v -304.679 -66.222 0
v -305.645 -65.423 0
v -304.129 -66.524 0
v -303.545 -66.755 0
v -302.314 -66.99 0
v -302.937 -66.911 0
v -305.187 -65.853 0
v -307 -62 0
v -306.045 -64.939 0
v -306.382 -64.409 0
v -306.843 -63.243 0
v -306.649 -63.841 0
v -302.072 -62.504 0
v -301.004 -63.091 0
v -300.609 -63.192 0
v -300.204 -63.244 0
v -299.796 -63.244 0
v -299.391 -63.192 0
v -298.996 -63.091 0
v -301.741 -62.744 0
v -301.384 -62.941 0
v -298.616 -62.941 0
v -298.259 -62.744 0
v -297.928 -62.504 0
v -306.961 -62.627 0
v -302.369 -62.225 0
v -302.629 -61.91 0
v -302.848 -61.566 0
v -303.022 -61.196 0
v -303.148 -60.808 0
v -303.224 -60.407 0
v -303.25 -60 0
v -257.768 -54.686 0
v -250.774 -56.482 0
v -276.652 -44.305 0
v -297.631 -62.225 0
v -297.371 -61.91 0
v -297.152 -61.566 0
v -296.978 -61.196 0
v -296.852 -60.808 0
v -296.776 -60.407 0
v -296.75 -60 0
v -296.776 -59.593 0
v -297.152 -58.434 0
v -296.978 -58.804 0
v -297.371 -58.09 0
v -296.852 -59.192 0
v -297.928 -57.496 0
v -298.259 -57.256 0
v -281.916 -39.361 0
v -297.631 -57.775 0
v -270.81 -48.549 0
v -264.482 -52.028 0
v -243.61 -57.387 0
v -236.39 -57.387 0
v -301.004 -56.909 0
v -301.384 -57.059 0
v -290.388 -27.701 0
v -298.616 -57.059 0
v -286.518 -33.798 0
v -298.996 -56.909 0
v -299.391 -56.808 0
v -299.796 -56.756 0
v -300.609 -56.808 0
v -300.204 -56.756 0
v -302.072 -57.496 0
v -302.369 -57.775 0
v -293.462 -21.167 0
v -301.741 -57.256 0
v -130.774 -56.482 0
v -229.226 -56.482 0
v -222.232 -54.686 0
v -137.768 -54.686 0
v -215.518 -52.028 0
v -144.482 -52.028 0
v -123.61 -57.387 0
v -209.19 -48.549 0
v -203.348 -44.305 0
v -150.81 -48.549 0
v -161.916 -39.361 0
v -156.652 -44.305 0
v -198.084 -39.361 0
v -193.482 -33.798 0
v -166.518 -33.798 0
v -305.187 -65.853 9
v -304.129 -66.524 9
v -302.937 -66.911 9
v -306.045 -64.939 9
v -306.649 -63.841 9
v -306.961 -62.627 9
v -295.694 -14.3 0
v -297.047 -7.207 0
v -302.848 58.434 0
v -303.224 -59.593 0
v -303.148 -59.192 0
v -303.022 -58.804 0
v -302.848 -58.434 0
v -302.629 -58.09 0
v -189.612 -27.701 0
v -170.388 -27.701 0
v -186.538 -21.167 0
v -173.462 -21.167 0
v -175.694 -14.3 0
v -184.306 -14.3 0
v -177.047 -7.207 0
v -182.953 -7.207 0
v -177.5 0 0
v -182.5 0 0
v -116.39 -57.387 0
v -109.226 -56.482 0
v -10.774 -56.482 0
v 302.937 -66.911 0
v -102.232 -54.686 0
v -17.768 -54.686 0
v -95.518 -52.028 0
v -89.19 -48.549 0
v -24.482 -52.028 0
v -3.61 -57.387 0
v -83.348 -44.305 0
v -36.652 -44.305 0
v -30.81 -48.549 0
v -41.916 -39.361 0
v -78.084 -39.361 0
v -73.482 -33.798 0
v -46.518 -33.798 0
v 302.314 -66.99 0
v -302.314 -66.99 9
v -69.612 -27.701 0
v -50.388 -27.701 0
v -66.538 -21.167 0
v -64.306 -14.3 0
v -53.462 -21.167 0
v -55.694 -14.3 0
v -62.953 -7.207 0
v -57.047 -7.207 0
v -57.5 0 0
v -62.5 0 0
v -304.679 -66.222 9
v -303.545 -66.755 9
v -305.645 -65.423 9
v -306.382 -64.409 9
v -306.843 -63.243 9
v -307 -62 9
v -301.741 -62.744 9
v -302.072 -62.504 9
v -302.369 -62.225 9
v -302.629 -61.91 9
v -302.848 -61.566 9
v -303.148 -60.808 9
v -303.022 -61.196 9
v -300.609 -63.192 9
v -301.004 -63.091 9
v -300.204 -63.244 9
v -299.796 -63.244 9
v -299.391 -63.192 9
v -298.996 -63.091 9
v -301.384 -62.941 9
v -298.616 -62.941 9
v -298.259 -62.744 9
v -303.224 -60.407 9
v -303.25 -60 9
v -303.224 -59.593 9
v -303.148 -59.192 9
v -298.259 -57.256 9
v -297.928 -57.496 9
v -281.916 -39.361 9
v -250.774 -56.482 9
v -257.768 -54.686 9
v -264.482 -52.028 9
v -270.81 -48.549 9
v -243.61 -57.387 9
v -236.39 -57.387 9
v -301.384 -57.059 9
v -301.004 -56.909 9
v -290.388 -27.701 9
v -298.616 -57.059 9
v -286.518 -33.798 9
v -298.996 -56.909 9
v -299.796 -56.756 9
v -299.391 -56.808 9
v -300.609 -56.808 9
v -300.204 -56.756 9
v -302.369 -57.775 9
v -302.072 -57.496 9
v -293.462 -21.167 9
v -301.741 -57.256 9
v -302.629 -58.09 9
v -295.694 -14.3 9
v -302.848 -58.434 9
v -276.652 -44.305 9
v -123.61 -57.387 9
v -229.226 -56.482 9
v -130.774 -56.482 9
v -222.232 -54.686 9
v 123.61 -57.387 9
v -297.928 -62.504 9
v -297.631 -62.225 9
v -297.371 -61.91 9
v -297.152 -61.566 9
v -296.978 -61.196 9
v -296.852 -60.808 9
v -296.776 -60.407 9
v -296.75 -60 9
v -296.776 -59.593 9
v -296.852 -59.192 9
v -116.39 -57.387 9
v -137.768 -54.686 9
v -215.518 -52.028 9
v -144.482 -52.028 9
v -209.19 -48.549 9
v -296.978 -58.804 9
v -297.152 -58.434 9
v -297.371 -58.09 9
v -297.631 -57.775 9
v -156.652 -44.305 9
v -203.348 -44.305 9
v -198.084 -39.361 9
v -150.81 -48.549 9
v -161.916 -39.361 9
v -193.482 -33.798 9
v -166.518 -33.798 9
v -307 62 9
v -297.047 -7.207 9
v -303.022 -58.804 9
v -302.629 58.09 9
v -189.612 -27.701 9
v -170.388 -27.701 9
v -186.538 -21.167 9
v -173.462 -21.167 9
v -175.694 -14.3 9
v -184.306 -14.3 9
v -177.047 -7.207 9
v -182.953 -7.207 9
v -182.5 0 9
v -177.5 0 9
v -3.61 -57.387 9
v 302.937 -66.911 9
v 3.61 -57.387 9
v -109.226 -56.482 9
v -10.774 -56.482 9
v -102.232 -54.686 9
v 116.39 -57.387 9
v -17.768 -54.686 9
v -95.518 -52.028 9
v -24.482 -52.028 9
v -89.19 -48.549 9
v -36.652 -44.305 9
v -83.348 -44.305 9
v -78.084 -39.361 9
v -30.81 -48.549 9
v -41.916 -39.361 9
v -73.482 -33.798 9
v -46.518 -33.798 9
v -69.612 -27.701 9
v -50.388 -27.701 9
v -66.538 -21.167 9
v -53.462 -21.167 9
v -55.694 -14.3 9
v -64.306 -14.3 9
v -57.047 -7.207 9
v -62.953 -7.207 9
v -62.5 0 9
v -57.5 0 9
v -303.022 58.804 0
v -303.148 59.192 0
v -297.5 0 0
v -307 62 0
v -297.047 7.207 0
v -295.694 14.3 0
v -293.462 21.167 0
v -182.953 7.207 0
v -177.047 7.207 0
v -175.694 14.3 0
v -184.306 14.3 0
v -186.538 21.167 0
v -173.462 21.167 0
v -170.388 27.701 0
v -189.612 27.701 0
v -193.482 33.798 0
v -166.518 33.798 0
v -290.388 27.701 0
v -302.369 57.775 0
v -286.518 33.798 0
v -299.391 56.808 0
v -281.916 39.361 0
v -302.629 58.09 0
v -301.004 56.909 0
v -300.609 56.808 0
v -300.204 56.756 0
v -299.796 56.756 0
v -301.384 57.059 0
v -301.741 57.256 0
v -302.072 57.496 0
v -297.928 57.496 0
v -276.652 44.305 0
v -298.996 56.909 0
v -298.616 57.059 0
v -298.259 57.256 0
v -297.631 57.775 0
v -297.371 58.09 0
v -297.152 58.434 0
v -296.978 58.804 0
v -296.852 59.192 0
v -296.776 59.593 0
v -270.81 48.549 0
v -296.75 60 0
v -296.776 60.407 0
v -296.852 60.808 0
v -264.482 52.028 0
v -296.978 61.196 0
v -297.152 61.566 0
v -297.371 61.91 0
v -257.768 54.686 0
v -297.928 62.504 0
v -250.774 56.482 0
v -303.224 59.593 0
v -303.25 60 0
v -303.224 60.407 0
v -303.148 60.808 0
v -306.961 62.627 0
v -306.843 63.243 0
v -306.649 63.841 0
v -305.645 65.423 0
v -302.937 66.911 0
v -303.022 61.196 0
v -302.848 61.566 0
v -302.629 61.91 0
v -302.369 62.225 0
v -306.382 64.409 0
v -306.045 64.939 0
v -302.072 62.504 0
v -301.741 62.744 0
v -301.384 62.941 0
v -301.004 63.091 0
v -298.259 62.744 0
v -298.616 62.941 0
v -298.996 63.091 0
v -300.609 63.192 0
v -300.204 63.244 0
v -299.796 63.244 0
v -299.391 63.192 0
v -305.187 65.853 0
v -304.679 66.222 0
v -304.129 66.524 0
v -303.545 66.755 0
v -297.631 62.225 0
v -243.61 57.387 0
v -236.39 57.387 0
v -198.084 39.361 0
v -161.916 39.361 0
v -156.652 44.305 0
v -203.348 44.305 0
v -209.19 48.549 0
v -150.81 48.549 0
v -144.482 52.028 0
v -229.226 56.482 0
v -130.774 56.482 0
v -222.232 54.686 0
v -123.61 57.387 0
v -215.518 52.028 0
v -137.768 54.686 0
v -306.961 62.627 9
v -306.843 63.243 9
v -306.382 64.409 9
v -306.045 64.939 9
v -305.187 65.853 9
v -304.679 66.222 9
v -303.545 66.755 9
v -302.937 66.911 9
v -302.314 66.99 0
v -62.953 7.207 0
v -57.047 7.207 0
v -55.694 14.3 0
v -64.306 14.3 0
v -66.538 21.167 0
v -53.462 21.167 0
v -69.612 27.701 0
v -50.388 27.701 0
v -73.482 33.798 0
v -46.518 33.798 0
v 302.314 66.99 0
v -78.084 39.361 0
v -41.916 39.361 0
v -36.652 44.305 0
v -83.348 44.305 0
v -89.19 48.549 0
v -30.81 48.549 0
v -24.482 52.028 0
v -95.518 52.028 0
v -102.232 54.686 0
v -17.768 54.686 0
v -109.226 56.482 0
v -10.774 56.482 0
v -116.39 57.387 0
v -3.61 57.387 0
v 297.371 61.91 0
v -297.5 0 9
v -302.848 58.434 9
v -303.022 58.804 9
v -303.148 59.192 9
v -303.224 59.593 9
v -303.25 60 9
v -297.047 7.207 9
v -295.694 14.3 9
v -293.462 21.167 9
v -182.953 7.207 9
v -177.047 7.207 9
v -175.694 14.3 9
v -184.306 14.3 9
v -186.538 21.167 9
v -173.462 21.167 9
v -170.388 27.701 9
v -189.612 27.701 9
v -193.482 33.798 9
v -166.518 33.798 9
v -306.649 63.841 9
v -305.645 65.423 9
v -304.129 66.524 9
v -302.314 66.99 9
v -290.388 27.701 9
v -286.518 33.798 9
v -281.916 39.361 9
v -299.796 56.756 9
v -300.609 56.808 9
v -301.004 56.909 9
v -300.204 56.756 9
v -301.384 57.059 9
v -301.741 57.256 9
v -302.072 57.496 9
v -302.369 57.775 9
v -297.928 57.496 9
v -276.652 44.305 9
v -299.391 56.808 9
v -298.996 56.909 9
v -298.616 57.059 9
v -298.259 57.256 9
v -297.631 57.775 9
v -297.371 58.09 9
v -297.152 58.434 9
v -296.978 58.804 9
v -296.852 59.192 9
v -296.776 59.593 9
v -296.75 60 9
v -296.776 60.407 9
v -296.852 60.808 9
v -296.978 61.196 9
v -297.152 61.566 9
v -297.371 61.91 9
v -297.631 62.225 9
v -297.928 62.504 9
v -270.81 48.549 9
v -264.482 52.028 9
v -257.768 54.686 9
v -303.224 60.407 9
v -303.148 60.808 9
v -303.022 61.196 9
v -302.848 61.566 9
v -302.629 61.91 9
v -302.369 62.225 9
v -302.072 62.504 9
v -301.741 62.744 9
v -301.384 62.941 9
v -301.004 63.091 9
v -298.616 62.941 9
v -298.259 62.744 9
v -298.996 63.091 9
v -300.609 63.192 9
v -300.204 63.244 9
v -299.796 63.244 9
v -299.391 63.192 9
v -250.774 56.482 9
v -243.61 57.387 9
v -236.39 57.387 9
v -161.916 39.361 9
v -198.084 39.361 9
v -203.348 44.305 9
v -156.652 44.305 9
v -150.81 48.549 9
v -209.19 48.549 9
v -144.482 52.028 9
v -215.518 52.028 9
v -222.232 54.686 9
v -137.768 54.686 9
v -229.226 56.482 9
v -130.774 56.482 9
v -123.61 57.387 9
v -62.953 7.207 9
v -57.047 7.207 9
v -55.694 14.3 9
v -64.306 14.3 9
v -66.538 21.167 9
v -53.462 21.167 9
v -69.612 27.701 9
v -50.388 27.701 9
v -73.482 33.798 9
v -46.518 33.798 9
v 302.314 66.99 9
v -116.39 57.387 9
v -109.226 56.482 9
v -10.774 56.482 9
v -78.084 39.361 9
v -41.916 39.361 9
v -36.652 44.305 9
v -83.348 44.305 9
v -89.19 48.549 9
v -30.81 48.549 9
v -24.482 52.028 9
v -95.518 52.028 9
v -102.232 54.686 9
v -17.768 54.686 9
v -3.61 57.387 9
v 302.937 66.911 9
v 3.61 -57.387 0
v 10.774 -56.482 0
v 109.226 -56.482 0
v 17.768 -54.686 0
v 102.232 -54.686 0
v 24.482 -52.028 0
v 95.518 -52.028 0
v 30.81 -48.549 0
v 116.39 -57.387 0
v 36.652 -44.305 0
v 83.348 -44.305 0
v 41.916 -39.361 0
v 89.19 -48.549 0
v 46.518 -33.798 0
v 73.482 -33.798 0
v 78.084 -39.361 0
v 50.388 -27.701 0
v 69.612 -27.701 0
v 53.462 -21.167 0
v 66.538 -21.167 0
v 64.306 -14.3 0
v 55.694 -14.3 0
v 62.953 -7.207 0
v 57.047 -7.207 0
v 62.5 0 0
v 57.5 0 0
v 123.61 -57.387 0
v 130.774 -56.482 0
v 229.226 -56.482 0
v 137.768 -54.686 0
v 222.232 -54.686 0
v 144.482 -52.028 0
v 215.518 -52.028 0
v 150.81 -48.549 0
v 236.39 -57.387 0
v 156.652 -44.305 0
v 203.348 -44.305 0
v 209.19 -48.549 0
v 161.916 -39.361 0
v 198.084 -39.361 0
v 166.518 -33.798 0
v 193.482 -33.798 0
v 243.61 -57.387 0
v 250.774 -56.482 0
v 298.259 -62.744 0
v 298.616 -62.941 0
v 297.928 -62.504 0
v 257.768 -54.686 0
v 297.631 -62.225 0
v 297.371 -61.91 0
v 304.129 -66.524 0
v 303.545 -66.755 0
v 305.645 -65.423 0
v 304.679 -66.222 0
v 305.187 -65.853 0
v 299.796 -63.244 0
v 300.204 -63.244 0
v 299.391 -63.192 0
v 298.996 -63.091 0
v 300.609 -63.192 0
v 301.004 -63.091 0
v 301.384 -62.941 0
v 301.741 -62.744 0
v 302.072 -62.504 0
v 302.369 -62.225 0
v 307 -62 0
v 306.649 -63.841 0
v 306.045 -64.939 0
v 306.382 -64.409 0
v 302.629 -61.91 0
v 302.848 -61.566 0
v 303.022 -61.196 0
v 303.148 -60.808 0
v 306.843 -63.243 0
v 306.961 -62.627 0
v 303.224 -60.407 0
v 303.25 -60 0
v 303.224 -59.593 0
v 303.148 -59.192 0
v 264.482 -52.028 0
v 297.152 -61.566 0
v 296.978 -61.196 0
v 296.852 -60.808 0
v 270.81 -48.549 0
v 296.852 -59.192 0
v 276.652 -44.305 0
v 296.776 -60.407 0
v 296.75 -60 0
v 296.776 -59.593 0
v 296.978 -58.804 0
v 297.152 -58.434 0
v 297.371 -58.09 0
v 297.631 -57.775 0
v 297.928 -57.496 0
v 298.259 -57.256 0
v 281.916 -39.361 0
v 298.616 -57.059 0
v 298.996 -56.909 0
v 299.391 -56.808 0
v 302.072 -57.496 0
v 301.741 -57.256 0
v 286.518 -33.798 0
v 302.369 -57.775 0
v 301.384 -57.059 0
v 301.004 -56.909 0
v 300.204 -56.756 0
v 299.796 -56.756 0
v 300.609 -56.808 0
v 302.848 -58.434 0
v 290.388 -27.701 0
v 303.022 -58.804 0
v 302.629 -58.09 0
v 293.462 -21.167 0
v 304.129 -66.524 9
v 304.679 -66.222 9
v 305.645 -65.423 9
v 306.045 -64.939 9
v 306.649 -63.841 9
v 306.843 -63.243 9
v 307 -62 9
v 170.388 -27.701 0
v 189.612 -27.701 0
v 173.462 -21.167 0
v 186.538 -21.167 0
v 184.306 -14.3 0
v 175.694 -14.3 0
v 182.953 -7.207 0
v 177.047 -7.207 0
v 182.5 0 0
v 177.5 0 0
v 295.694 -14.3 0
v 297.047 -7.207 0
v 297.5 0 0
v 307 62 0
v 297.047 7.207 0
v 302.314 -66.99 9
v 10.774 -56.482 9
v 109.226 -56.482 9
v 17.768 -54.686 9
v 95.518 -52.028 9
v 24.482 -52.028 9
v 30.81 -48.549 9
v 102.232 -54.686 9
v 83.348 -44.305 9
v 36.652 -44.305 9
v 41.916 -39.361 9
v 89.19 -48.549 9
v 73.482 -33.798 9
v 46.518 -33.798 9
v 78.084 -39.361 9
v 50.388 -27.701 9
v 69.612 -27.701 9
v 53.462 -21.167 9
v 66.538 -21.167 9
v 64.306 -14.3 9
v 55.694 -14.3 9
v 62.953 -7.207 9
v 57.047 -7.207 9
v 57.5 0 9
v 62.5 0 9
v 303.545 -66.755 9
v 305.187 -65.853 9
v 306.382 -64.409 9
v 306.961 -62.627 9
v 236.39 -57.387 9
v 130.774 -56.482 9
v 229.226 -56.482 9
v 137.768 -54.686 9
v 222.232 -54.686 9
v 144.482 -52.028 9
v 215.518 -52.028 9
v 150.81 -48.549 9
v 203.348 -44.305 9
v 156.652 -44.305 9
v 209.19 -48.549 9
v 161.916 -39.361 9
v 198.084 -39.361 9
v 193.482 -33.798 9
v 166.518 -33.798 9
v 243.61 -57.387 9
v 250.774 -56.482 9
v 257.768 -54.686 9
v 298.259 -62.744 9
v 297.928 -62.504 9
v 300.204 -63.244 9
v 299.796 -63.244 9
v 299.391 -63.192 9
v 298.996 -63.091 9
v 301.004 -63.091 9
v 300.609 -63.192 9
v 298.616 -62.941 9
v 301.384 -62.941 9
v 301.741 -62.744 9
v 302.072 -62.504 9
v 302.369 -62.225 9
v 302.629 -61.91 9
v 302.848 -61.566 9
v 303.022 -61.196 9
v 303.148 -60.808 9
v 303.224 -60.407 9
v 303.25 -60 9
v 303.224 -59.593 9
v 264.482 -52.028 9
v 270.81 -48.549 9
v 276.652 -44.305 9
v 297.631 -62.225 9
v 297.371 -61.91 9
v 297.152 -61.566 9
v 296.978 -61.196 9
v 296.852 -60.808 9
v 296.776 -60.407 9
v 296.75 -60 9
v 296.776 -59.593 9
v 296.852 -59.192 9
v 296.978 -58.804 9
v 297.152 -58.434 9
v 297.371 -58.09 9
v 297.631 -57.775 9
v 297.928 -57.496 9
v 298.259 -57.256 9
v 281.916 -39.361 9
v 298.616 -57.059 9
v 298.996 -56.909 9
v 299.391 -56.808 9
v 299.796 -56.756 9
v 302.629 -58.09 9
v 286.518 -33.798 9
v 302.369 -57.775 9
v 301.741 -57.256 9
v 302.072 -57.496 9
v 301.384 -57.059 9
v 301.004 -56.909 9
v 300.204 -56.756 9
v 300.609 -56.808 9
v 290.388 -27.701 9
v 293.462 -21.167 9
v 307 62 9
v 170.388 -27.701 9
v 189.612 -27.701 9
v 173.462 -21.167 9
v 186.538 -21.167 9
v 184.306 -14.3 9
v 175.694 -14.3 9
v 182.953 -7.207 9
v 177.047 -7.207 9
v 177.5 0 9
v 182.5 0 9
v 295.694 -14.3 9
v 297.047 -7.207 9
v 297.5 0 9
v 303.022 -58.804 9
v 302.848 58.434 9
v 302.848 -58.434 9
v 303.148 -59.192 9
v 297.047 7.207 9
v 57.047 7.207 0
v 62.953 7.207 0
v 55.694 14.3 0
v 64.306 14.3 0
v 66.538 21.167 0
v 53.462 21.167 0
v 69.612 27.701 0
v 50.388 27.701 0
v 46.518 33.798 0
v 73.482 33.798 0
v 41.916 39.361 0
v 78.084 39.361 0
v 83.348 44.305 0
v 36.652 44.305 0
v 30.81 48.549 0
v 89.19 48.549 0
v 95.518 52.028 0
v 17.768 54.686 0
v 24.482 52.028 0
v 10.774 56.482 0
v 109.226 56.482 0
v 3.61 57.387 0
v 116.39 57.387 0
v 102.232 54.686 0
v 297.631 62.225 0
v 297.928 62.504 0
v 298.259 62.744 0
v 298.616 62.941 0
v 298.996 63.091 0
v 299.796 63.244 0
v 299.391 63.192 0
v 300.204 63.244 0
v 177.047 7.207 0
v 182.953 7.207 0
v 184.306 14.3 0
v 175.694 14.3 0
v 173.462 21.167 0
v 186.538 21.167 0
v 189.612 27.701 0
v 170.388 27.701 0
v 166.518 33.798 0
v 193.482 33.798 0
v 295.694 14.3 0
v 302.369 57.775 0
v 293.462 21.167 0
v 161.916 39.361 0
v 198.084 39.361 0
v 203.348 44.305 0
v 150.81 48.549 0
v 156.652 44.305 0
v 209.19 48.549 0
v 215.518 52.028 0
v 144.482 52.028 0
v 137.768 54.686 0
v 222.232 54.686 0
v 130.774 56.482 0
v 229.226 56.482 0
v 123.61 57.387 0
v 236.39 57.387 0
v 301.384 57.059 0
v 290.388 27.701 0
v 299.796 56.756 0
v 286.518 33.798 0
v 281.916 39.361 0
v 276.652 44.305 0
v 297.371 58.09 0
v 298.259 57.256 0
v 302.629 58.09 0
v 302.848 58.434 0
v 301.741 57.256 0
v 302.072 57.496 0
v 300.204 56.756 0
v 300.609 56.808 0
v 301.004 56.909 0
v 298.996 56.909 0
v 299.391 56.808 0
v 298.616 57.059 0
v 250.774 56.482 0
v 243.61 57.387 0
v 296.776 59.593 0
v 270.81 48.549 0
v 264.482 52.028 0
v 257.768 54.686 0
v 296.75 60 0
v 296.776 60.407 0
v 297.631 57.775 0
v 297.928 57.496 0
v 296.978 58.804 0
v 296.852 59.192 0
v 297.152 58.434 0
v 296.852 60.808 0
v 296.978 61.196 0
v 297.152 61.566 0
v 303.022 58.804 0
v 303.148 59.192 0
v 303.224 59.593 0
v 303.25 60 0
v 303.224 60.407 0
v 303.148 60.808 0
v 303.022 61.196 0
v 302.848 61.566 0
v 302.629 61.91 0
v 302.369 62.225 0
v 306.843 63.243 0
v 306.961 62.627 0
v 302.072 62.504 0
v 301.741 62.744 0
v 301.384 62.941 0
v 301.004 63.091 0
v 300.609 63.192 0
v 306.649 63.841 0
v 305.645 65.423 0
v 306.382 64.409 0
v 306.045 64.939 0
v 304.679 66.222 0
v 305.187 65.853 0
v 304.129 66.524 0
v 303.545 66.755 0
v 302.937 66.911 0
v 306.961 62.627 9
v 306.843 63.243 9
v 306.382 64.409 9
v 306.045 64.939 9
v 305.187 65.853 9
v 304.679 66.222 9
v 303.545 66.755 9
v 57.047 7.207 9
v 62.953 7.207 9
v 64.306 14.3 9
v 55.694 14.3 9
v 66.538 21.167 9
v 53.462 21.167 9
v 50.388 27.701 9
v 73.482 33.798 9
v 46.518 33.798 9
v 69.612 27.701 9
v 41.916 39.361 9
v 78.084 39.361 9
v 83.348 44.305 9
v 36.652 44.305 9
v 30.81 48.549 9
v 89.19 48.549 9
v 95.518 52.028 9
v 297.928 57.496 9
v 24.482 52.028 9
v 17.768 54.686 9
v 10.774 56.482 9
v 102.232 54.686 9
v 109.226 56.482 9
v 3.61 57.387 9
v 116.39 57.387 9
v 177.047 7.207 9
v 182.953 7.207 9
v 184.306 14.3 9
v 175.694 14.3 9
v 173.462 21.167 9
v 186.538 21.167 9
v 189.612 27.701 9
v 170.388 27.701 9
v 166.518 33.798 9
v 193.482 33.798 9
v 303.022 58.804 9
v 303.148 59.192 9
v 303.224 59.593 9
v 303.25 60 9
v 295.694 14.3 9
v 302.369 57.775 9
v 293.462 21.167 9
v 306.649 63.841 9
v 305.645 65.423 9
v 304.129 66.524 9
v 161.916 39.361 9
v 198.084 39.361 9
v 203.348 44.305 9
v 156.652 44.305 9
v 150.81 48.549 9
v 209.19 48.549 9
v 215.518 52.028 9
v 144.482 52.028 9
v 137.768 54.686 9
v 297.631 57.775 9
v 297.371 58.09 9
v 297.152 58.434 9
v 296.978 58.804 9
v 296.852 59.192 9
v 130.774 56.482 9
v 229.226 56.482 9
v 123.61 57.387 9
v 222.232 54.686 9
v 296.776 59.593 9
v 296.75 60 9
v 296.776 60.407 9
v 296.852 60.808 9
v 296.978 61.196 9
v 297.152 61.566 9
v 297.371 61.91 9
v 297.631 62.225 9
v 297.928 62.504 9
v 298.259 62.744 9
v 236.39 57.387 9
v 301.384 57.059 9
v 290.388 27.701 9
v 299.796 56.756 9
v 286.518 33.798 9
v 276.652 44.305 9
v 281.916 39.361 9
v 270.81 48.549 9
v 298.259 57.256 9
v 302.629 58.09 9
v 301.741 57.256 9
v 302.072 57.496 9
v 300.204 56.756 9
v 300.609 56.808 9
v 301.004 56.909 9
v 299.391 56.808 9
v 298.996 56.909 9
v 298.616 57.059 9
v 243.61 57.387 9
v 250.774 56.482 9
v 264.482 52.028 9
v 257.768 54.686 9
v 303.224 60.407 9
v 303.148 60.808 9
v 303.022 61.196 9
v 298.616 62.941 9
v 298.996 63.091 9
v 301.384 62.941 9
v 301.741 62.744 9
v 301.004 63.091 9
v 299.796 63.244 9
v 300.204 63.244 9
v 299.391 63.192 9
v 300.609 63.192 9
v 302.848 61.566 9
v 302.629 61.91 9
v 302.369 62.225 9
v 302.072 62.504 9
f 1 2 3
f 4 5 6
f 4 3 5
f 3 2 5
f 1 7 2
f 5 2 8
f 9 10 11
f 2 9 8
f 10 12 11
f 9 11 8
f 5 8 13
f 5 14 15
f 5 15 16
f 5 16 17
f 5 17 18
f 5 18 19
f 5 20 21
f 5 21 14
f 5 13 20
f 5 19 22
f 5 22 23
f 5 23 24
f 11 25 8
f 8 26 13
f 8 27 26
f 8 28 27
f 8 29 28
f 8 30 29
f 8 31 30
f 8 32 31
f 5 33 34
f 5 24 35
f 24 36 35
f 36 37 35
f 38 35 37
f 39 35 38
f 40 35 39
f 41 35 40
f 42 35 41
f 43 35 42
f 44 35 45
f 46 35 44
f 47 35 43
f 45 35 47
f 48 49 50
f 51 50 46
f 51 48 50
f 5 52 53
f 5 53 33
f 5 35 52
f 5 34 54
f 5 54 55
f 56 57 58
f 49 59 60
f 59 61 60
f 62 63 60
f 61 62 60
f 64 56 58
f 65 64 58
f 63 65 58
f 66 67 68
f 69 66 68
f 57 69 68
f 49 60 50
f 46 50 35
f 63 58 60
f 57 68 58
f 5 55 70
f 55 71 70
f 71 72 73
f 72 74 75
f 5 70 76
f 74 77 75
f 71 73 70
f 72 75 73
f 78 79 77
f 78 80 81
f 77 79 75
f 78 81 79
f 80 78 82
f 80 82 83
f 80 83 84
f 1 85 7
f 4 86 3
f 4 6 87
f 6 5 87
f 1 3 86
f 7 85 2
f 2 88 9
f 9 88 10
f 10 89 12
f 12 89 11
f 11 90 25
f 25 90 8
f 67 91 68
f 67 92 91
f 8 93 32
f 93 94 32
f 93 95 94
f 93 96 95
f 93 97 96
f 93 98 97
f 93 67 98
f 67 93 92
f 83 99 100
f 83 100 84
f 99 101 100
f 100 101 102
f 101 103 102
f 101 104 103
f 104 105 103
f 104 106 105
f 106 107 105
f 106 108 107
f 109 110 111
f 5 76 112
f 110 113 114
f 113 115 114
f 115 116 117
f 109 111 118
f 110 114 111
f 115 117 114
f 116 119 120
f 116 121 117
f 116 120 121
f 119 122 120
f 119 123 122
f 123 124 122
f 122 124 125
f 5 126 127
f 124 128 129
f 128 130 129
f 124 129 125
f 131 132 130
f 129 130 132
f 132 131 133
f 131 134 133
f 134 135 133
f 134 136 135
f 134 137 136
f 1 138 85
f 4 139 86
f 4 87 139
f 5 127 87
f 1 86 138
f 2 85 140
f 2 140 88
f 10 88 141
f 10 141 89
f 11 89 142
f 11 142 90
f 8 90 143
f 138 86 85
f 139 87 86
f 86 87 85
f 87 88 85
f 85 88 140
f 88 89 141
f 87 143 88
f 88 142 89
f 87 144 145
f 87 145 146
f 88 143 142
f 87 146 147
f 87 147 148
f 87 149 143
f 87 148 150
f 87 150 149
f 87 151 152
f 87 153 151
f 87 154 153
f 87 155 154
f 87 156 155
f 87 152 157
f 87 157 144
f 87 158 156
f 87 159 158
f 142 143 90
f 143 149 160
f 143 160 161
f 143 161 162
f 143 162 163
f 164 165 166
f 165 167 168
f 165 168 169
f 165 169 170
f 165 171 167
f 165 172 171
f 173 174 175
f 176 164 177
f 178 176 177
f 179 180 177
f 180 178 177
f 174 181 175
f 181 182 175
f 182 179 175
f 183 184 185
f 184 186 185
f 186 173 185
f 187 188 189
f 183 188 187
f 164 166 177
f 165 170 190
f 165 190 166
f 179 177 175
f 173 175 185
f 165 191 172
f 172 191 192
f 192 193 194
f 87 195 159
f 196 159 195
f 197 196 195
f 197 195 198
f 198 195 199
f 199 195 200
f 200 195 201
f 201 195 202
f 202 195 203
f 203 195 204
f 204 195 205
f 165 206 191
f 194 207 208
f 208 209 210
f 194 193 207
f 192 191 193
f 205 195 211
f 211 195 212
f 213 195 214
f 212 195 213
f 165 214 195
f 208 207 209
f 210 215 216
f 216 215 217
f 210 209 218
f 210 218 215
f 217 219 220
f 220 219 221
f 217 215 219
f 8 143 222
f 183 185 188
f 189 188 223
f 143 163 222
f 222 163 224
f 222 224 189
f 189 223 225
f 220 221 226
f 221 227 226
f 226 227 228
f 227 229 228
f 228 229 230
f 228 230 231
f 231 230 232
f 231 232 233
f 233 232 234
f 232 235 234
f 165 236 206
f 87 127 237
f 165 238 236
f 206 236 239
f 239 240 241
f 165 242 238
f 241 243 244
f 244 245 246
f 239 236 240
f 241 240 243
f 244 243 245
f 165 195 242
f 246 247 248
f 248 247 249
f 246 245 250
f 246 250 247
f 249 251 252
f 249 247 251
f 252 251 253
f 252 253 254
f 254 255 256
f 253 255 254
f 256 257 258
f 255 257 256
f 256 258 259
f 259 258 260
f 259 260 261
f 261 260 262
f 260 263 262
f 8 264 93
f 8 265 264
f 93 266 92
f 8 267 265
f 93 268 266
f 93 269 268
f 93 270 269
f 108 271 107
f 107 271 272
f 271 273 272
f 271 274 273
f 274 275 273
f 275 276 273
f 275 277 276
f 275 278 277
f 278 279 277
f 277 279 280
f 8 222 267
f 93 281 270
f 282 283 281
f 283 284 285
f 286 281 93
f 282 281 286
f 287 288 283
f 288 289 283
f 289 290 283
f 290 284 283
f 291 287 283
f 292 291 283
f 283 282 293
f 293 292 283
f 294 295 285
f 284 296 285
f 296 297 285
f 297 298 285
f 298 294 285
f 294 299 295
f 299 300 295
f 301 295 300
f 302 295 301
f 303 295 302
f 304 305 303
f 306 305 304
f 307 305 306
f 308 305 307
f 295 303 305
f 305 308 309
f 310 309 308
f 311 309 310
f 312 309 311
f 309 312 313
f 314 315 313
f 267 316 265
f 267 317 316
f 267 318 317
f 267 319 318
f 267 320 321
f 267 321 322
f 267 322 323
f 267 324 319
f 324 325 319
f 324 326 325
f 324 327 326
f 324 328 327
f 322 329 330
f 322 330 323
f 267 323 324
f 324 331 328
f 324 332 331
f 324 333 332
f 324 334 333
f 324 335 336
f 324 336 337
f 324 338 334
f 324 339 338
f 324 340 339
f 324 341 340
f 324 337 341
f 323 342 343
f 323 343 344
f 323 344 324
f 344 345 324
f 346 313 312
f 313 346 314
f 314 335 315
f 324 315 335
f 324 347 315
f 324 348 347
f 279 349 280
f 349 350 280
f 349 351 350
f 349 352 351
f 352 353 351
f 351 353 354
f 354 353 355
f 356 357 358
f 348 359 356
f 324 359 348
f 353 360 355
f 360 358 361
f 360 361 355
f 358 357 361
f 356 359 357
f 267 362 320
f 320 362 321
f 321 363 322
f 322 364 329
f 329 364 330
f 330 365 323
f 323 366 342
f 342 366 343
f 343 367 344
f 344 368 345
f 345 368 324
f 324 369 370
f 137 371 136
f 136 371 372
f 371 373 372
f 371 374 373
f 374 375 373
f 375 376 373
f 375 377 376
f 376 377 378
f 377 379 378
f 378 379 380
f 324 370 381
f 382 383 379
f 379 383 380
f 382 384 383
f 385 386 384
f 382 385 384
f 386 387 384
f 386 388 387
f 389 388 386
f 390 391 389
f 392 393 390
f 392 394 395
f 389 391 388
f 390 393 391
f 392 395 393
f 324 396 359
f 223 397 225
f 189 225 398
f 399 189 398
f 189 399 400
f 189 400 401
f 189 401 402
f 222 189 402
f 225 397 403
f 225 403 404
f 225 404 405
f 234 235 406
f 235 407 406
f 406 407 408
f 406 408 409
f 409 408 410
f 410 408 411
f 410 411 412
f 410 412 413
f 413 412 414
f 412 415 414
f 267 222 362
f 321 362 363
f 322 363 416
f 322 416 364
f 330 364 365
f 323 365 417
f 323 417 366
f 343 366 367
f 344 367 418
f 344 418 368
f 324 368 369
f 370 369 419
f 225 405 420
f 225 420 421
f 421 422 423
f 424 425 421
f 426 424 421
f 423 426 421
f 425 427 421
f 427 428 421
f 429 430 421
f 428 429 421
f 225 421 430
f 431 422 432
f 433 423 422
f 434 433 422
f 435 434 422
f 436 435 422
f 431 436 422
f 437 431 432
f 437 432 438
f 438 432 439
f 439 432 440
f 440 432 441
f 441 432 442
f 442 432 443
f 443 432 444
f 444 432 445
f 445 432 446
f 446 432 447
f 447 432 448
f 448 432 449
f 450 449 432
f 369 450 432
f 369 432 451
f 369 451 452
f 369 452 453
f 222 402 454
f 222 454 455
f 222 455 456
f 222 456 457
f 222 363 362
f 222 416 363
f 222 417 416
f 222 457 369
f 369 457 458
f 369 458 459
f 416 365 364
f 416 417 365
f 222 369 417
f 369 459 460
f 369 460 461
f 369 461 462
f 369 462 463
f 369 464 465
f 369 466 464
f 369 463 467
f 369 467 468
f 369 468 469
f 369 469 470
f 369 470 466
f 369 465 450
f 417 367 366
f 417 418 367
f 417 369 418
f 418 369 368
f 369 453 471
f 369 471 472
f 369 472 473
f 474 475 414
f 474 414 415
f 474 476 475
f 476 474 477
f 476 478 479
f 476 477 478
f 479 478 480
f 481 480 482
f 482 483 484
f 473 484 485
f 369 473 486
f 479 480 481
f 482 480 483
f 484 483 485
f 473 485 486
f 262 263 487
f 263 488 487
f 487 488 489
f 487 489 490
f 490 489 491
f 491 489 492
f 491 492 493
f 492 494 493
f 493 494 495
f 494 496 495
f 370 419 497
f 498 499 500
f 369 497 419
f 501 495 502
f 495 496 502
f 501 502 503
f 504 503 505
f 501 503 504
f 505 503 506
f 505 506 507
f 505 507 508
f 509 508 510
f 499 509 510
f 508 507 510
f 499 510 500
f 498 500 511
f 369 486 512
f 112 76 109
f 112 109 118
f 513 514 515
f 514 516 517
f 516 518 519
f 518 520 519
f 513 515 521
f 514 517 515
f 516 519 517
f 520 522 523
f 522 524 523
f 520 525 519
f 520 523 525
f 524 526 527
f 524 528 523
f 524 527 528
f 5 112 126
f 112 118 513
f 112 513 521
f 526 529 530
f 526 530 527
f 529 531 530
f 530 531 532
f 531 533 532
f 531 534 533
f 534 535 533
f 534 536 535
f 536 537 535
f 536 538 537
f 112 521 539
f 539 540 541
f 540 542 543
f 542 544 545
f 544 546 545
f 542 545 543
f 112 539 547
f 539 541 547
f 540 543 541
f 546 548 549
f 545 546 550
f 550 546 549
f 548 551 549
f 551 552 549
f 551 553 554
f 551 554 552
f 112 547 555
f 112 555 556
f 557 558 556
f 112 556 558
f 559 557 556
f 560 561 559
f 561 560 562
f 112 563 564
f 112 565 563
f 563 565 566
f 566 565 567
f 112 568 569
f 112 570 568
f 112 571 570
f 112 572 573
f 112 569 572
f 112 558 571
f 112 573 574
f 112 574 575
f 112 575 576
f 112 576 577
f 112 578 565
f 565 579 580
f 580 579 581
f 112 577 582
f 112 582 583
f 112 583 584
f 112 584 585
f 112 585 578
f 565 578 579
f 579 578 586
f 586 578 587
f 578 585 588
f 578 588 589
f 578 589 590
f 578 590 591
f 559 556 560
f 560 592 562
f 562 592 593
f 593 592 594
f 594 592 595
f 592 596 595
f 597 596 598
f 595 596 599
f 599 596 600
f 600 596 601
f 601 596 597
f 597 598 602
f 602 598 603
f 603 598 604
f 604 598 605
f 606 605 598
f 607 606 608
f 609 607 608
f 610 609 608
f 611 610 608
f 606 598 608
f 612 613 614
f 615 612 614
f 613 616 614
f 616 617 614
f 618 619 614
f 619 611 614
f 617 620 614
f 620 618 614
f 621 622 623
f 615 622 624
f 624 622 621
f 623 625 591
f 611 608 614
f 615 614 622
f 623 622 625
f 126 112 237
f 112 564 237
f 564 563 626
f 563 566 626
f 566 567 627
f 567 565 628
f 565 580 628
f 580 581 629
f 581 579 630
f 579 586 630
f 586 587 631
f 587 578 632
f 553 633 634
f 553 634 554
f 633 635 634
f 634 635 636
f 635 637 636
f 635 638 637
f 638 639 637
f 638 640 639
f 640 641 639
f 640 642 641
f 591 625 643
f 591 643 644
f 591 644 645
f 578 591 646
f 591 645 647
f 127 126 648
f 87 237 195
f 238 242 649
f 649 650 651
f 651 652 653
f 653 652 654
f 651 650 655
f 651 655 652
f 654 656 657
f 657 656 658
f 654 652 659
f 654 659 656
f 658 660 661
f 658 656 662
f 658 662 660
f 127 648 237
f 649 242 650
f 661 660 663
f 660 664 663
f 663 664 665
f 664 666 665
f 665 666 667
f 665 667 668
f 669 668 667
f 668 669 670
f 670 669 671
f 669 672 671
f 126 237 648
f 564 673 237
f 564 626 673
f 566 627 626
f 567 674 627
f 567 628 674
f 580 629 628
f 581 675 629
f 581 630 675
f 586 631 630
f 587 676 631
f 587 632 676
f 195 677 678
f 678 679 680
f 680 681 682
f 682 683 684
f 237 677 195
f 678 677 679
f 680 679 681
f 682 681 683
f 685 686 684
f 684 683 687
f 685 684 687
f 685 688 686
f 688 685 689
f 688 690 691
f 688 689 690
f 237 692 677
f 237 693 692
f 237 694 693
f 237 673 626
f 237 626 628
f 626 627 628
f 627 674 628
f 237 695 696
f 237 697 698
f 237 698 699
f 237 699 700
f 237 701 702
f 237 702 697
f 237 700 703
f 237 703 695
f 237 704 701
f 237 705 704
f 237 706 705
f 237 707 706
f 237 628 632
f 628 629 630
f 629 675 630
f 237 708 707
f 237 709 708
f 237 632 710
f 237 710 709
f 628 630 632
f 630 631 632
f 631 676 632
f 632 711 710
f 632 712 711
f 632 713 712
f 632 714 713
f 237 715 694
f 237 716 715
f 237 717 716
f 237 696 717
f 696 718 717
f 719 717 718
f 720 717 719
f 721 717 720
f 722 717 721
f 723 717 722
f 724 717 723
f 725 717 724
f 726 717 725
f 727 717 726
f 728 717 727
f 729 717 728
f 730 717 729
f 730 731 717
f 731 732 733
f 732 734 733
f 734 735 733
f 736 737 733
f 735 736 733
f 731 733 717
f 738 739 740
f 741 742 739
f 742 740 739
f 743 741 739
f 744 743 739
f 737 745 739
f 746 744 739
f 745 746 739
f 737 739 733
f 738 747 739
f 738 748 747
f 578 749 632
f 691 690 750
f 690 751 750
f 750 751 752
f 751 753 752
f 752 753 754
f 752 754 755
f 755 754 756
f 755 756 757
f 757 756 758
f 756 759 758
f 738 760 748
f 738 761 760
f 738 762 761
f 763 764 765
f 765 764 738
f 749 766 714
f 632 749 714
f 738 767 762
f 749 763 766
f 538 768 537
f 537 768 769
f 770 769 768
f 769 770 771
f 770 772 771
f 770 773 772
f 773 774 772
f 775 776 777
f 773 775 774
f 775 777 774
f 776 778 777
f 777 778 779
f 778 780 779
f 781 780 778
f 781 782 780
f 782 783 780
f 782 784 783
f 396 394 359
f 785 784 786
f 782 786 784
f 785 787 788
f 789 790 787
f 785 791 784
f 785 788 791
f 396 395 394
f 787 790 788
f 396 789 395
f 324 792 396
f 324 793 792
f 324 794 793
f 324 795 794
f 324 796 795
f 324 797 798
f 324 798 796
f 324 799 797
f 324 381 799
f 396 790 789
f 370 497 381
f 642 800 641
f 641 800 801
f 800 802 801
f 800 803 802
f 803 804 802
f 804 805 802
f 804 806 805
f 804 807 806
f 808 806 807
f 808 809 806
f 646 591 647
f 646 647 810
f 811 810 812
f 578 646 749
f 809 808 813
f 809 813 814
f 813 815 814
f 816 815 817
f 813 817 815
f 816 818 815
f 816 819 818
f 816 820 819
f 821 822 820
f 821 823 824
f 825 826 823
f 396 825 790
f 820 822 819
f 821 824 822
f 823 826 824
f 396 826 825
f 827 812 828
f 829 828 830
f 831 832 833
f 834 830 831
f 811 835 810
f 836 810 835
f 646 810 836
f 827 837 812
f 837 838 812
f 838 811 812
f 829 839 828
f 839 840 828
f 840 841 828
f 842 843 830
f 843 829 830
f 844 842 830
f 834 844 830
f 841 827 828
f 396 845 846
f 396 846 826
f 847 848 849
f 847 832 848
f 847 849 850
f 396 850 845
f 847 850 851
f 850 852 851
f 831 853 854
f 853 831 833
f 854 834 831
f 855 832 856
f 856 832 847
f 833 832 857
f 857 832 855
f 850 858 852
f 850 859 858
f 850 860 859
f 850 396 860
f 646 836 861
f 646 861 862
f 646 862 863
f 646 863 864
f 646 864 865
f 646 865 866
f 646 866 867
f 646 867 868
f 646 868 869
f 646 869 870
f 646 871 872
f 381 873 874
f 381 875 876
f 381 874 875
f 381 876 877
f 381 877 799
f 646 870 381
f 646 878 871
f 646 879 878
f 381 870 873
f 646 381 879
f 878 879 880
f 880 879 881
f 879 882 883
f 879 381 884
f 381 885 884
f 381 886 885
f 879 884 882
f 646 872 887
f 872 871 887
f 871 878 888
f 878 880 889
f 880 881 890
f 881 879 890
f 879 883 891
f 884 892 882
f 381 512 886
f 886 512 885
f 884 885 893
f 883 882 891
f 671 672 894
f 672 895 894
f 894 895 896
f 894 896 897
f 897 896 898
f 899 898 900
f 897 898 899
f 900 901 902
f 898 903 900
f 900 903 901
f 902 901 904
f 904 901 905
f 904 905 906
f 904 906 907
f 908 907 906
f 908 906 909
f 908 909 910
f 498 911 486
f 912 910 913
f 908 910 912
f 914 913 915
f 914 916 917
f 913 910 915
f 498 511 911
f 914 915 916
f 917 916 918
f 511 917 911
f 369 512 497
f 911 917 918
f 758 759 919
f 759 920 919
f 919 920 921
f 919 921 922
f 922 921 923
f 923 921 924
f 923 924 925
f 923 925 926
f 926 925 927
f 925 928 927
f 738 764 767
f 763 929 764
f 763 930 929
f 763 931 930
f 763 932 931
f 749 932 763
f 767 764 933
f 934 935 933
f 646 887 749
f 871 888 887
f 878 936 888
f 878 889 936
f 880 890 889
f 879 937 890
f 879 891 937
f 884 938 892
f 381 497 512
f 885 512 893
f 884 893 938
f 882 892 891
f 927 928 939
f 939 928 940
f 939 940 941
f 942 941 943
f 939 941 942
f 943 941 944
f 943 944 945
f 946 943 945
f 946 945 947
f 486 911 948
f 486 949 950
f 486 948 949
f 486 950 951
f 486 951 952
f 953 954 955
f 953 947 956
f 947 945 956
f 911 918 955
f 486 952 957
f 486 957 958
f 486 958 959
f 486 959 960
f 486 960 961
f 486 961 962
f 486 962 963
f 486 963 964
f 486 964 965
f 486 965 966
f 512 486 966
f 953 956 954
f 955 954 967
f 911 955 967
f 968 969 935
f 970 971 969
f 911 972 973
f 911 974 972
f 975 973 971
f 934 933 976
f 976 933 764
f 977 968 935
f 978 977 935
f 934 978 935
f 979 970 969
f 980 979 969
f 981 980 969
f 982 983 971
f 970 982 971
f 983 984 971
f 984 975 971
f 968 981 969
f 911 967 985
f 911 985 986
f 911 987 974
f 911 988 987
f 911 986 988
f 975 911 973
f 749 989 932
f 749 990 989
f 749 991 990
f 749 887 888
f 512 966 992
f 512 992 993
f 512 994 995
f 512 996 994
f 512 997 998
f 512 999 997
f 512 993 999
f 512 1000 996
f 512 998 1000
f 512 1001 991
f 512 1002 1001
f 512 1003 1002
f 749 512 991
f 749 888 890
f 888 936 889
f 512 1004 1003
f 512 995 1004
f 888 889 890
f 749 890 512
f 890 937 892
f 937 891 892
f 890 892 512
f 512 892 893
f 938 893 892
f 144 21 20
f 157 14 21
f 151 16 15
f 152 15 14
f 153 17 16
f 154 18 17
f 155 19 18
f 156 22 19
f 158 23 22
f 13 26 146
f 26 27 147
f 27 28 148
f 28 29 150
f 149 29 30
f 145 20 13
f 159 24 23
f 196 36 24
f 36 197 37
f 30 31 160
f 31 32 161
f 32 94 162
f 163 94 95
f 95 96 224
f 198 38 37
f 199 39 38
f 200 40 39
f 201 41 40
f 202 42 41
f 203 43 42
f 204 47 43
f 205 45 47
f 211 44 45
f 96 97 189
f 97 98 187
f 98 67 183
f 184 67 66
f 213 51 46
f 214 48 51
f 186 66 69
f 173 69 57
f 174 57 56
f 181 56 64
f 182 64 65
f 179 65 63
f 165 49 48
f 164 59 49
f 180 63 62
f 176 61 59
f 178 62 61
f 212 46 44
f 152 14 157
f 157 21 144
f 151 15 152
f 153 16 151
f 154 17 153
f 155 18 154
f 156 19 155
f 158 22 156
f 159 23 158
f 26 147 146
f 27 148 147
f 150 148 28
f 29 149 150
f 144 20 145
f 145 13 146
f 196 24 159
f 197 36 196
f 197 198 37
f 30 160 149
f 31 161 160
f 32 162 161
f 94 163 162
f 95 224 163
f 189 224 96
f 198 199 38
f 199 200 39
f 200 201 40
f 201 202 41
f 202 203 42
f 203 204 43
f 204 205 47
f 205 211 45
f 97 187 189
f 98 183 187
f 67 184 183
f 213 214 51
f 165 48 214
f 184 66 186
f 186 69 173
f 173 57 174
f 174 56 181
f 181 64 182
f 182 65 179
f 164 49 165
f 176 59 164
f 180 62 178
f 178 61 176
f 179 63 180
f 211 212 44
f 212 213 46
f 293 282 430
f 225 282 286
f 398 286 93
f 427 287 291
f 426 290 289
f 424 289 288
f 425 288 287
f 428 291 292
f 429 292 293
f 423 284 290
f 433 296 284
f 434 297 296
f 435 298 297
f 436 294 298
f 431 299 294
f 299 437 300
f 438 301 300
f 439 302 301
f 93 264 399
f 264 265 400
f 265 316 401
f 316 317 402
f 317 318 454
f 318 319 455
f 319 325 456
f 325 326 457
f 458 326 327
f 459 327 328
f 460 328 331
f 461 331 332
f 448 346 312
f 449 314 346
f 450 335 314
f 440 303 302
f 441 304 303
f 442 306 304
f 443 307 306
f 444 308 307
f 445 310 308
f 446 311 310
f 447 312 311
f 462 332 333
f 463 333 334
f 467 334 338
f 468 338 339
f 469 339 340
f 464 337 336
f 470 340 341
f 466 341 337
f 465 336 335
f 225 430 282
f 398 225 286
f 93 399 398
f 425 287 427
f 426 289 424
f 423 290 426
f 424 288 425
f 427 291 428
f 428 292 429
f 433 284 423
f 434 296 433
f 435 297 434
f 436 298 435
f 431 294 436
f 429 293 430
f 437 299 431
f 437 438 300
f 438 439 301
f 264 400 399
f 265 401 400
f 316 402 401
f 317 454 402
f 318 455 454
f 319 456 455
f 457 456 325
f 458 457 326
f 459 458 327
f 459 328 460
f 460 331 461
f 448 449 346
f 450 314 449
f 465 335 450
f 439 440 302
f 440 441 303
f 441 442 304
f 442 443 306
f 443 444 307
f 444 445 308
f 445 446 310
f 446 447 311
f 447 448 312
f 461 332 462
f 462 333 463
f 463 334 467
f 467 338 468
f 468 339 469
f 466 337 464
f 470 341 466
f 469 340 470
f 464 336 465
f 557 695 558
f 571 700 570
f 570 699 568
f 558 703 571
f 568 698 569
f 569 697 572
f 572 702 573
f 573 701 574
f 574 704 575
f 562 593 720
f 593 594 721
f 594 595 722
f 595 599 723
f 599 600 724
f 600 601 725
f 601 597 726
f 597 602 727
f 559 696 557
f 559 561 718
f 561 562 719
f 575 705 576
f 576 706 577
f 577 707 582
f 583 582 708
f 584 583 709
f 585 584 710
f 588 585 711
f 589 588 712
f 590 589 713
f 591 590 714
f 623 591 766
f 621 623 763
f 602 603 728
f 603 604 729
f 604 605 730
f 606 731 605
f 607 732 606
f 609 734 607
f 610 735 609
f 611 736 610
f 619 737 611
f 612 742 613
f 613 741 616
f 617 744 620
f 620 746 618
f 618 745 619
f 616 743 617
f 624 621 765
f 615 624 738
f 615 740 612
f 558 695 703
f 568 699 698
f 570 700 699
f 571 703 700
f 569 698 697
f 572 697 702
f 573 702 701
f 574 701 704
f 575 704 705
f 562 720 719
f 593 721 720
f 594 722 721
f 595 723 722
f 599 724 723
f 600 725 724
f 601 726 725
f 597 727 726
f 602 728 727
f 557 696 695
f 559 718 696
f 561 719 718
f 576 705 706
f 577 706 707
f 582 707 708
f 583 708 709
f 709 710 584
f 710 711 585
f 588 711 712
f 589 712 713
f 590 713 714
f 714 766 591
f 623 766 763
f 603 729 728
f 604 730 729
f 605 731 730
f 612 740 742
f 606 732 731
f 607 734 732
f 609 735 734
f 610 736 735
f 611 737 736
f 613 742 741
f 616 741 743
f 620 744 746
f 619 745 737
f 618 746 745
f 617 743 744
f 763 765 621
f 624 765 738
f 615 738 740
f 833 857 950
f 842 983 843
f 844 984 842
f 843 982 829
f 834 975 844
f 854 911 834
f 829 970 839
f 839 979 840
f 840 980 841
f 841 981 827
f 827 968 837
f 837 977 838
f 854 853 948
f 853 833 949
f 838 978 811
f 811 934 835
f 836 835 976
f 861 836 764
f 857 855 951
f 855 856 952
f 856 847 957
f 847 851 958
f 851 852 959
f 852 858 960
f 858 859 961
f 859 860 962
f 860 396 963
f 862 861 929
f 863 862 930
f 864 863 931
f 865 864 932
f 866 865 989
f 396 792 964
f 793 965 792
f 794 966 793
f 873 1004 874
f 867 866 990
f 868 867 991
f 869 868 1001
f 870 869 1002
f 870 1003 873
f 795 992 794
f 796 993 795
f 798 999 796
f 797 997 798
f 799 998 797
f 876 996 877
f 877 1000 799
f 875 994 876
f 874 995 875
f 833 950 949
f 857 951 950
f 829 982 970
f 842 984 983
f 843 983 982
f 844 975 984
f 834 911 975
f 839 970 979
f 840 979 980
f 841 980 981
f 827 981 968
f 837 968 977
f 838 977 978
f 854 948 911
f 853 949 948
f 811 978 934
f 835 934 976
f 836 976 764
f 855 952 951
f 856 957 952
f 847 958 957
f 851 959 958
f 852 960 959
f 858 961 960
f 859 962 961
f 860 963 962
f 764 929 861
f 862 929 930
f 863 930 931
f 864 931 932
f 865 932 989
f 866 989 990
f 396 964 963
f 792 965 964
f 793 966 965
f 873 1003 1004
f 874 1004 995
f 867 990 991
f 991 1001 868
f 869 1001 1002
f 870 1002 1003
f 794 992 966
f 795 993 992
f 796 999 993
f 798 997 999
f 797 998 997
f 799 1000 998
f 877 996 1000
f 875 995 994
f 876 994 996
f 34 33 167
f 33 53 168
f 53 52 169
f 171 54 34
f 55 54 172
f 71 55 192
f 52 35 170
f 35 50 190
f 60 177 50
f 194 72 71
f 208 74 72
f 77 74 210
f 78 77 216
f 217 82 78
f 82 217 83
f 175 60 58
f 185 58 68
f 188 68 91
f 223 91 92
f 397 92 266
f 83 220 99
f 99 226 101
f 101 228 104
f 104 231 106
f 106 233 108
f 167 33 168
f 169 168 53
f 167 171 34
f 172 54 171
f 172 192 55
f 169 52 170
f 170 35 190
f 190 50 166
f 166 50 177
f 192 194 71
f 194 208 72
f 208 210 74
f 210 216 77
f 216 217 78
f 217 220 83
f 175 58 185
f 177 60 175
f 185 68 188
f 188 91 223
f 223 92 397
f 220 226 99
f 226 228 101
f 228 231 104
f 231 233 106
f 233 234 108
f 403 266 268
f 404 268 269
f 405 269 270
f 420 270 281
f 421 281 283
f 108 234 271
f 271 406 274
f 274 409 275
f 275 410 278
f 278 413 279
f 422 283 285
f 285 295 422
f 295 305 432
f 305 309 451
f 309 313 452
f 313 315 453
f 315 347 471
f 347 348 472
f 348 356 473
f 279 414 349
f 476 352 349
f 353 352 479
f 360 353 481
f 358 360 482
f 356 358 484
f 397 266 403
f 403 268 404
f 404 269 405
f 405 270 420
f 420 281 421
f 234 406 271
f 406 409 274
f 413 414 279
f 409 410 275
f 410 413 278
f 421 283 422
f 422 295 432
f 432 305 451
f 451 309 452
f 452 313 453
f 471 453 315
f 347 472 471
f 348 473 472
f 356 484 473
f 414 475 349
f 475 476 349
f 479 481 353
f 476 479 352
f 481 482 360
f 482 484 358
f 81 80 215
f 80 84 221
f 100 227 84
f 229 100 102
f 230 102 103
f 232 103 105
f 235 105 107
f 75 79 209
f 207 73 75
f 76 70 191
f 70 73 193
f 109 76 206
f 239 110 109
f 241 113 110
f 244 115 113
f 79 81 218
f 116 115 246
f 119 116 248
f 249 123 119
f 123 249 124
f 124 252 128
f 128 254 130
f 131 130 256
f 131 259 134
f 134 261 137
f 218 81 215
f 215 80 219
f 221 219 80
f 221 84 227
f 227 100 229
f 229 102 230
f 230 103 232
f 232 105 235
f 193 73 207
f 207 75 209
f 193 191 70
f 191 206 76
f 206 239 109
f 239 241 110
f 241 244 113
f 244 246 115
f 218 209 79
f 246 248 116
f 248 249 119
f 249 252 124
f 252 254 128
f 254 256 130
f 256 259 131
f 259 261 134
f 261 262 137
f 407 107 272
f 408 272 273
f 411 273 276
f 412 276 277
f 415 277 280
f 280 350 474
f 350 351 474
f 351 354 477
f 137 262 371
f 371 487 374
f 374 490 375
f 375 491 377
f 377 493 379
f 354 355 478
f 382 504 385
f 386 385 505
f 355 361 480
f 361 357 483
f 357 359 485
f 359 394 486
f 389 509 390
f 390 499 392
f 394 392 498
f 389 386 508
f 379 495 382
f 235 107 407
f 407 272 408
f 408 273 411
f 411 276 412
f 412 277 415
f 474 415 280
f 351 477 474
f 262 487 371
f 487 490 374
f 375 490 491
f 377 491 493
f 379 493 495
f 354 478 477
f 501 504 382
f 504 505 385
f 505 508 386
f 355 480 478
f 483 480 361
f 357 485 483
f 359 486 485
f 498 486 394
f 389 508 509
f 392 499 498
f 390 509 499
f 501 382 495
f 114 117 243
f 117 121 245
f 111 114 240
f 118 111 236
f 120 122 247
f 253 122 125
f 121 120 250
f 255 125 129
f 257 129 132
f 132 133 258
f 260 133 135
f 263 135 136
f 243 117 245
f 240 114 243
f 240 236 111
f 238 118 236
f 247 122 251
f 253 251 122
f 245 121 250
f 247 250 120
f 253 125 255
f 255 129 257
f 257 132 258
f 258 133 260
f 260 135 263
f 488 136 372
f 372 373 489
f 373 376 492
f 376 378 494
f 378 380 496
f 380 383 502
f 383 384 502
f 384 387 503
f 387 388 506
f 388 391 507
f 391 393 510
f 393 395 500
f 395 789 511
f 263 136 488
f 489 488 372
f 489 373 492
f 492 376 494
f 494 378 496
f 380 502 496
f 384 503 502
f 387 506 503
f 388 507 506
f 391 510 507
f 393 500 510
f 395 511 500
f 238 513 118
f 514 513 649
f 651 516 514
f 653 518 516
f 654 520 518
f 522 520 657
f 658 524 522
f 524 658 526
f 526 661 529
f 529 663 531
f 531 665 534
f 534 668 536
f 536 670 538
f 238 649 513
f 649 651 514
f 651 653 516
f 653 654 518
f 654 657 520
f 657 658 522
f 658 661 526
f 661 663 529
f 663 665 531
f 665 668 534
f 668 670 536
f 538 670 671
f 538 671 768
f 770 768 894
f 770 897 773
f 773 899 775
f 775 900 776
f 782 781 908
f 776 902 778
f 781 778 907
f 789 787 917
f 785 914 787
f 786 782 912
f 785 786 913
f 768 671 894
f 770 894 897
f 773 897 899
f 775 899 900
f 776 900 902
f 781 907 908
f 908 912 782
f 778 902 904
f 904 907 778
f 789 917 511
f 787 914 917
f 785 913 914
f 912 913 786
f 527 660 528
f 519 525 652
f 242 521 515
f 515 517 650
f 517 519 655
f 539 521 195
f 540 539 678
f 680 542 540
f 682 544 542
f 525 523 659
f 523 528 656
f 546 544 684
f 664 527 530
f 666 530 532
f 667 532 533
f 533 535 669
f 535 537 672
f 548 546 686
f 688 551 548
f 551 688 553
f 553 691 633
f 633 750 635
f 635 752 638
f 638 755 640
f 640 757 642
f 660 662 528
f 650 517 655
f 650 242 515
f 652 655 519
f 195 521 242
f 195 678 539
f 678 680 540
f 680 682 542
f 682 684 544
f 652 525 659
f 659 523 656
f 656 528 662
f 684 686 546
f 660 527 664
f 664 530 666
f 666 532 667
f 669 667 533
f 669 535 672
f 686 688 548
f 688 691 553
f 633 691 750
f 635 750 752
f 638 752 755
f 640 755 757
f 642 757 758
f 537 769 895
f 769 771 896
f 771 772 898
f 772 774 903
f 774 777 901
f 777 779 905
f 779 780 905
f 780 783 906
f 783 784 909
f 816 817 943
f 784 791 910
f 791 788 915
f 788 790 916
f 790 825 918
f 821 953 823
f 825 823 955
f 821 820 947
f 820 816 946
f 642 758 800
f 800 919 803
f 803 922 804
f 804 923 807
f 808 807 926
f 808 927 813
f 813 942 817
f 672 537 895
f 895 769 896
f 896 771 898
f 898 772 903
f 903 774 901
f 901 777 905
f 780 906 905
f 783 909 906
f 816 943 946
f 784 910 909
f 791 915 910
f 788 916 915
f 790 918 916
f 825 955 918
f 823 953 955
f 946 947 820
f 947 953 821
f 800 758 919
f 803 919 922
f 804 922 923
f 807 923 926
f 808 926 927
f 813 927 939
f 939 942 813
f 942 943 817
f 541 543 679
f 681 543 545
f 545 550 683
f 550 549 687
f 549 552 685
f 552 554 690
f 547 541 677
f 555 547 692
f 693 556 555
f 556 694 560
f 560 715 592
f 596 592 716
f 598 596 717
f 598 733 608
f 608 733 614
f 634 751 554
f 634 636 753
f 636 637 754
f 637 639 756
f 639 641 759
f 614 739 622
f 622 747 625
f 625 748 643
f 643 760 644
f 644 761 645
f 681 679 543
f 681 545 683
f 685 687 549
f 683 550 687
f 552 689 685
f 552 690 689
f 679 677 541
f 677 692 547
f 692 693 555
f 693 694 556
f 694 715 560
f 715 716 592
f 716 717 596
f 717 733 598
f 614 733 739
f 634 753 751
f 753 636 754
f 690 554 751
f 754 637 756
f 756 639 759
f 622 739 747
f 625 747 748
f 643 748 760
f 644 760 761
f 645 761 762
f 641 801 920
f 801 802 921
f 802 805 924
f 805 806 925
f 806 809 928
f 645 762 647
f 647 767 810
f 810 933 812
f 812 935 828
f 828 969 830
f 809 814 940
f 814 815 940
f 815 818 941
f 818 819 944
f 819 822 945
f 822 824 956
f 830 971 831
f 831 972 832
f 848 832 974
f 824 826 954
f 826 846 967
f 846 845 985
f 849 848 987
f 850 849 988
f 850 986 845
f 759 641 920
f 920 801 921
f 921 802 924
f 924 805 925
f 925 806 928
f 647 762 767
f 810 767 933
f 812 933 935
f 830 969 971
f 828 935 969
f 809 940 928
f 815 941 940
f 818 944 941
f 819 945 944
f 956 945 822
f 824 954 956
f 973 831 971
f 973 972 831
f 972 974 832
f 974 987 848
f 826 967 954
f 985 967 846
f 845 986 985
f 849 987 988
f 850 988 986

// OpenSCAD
$fn = 50;

difference() {
	union() {
		hull() {
			translate(v = [-302.0, 62.0, 0]) {
				cylinder(h = 9, r = 5);
			}
			translate(v = [302.0, 62.0, 0]) {
				cylinder(h = 9, r = 5);
			}
			translate(v = [-302.0, -62.0, 0]) {
				cylinder(h = 9, r = 5);
			}
			translate(v = [302.0, -62.0, 0]) {
				cylinder(h = 9, r = 5);
			}
		}
	}
	union() {
		translate(v = [-300.0, -60.0, -100.0]) {
			cylinder(h = 200, r = 3.25);
		}
		translate(v = [-300.0, 60.0, -100.0]) {
			cylinder(h = 200, r = 3.25);
		}
		translate(v = [300.0, -60.0, -100.0]) {
			cylinder(h = 200, r = 3.25);
		}
		translate(v = [300.0, 60.0, -100.0]) {
			cylinder(h = 200, r = 3.25);
		}
		translate(v = [-300.0, -60.0, -100.0]) {
			cylinder(h = 200, r = 1.8);
		}
		translate(v = [-300.0, 60.0, -100.0]) {
			cylinder(h = 200, r = 1.8);
		}
		translate(v = [300.0, -60.0, -100.0]) {
			cylinder(h = 200, r = 1.8);
		}
		translate(v = [300.0, 60.0, -100.0]) {
			cylinder(h = 200, r = 1.8);
		}
		translate(v = [-240.0, 0, 0.0]) {
			cylinder(h = 9, r = 57.5);
		}
		translate(v = [-120.0, 0, 0.0]) {
			cylinder(h = 9, r = 57.5);
		}
		cylinder(h = 9, r = 57.5);
		translate(v = [120.0, 0, 0.0]) {
			cylinder(h = 9, r = 57.5);
		}
		translate(v = [240.0, 0, 0.0]) {
			cylinder(h = 9, r = 57.5);
		}
	}
}
